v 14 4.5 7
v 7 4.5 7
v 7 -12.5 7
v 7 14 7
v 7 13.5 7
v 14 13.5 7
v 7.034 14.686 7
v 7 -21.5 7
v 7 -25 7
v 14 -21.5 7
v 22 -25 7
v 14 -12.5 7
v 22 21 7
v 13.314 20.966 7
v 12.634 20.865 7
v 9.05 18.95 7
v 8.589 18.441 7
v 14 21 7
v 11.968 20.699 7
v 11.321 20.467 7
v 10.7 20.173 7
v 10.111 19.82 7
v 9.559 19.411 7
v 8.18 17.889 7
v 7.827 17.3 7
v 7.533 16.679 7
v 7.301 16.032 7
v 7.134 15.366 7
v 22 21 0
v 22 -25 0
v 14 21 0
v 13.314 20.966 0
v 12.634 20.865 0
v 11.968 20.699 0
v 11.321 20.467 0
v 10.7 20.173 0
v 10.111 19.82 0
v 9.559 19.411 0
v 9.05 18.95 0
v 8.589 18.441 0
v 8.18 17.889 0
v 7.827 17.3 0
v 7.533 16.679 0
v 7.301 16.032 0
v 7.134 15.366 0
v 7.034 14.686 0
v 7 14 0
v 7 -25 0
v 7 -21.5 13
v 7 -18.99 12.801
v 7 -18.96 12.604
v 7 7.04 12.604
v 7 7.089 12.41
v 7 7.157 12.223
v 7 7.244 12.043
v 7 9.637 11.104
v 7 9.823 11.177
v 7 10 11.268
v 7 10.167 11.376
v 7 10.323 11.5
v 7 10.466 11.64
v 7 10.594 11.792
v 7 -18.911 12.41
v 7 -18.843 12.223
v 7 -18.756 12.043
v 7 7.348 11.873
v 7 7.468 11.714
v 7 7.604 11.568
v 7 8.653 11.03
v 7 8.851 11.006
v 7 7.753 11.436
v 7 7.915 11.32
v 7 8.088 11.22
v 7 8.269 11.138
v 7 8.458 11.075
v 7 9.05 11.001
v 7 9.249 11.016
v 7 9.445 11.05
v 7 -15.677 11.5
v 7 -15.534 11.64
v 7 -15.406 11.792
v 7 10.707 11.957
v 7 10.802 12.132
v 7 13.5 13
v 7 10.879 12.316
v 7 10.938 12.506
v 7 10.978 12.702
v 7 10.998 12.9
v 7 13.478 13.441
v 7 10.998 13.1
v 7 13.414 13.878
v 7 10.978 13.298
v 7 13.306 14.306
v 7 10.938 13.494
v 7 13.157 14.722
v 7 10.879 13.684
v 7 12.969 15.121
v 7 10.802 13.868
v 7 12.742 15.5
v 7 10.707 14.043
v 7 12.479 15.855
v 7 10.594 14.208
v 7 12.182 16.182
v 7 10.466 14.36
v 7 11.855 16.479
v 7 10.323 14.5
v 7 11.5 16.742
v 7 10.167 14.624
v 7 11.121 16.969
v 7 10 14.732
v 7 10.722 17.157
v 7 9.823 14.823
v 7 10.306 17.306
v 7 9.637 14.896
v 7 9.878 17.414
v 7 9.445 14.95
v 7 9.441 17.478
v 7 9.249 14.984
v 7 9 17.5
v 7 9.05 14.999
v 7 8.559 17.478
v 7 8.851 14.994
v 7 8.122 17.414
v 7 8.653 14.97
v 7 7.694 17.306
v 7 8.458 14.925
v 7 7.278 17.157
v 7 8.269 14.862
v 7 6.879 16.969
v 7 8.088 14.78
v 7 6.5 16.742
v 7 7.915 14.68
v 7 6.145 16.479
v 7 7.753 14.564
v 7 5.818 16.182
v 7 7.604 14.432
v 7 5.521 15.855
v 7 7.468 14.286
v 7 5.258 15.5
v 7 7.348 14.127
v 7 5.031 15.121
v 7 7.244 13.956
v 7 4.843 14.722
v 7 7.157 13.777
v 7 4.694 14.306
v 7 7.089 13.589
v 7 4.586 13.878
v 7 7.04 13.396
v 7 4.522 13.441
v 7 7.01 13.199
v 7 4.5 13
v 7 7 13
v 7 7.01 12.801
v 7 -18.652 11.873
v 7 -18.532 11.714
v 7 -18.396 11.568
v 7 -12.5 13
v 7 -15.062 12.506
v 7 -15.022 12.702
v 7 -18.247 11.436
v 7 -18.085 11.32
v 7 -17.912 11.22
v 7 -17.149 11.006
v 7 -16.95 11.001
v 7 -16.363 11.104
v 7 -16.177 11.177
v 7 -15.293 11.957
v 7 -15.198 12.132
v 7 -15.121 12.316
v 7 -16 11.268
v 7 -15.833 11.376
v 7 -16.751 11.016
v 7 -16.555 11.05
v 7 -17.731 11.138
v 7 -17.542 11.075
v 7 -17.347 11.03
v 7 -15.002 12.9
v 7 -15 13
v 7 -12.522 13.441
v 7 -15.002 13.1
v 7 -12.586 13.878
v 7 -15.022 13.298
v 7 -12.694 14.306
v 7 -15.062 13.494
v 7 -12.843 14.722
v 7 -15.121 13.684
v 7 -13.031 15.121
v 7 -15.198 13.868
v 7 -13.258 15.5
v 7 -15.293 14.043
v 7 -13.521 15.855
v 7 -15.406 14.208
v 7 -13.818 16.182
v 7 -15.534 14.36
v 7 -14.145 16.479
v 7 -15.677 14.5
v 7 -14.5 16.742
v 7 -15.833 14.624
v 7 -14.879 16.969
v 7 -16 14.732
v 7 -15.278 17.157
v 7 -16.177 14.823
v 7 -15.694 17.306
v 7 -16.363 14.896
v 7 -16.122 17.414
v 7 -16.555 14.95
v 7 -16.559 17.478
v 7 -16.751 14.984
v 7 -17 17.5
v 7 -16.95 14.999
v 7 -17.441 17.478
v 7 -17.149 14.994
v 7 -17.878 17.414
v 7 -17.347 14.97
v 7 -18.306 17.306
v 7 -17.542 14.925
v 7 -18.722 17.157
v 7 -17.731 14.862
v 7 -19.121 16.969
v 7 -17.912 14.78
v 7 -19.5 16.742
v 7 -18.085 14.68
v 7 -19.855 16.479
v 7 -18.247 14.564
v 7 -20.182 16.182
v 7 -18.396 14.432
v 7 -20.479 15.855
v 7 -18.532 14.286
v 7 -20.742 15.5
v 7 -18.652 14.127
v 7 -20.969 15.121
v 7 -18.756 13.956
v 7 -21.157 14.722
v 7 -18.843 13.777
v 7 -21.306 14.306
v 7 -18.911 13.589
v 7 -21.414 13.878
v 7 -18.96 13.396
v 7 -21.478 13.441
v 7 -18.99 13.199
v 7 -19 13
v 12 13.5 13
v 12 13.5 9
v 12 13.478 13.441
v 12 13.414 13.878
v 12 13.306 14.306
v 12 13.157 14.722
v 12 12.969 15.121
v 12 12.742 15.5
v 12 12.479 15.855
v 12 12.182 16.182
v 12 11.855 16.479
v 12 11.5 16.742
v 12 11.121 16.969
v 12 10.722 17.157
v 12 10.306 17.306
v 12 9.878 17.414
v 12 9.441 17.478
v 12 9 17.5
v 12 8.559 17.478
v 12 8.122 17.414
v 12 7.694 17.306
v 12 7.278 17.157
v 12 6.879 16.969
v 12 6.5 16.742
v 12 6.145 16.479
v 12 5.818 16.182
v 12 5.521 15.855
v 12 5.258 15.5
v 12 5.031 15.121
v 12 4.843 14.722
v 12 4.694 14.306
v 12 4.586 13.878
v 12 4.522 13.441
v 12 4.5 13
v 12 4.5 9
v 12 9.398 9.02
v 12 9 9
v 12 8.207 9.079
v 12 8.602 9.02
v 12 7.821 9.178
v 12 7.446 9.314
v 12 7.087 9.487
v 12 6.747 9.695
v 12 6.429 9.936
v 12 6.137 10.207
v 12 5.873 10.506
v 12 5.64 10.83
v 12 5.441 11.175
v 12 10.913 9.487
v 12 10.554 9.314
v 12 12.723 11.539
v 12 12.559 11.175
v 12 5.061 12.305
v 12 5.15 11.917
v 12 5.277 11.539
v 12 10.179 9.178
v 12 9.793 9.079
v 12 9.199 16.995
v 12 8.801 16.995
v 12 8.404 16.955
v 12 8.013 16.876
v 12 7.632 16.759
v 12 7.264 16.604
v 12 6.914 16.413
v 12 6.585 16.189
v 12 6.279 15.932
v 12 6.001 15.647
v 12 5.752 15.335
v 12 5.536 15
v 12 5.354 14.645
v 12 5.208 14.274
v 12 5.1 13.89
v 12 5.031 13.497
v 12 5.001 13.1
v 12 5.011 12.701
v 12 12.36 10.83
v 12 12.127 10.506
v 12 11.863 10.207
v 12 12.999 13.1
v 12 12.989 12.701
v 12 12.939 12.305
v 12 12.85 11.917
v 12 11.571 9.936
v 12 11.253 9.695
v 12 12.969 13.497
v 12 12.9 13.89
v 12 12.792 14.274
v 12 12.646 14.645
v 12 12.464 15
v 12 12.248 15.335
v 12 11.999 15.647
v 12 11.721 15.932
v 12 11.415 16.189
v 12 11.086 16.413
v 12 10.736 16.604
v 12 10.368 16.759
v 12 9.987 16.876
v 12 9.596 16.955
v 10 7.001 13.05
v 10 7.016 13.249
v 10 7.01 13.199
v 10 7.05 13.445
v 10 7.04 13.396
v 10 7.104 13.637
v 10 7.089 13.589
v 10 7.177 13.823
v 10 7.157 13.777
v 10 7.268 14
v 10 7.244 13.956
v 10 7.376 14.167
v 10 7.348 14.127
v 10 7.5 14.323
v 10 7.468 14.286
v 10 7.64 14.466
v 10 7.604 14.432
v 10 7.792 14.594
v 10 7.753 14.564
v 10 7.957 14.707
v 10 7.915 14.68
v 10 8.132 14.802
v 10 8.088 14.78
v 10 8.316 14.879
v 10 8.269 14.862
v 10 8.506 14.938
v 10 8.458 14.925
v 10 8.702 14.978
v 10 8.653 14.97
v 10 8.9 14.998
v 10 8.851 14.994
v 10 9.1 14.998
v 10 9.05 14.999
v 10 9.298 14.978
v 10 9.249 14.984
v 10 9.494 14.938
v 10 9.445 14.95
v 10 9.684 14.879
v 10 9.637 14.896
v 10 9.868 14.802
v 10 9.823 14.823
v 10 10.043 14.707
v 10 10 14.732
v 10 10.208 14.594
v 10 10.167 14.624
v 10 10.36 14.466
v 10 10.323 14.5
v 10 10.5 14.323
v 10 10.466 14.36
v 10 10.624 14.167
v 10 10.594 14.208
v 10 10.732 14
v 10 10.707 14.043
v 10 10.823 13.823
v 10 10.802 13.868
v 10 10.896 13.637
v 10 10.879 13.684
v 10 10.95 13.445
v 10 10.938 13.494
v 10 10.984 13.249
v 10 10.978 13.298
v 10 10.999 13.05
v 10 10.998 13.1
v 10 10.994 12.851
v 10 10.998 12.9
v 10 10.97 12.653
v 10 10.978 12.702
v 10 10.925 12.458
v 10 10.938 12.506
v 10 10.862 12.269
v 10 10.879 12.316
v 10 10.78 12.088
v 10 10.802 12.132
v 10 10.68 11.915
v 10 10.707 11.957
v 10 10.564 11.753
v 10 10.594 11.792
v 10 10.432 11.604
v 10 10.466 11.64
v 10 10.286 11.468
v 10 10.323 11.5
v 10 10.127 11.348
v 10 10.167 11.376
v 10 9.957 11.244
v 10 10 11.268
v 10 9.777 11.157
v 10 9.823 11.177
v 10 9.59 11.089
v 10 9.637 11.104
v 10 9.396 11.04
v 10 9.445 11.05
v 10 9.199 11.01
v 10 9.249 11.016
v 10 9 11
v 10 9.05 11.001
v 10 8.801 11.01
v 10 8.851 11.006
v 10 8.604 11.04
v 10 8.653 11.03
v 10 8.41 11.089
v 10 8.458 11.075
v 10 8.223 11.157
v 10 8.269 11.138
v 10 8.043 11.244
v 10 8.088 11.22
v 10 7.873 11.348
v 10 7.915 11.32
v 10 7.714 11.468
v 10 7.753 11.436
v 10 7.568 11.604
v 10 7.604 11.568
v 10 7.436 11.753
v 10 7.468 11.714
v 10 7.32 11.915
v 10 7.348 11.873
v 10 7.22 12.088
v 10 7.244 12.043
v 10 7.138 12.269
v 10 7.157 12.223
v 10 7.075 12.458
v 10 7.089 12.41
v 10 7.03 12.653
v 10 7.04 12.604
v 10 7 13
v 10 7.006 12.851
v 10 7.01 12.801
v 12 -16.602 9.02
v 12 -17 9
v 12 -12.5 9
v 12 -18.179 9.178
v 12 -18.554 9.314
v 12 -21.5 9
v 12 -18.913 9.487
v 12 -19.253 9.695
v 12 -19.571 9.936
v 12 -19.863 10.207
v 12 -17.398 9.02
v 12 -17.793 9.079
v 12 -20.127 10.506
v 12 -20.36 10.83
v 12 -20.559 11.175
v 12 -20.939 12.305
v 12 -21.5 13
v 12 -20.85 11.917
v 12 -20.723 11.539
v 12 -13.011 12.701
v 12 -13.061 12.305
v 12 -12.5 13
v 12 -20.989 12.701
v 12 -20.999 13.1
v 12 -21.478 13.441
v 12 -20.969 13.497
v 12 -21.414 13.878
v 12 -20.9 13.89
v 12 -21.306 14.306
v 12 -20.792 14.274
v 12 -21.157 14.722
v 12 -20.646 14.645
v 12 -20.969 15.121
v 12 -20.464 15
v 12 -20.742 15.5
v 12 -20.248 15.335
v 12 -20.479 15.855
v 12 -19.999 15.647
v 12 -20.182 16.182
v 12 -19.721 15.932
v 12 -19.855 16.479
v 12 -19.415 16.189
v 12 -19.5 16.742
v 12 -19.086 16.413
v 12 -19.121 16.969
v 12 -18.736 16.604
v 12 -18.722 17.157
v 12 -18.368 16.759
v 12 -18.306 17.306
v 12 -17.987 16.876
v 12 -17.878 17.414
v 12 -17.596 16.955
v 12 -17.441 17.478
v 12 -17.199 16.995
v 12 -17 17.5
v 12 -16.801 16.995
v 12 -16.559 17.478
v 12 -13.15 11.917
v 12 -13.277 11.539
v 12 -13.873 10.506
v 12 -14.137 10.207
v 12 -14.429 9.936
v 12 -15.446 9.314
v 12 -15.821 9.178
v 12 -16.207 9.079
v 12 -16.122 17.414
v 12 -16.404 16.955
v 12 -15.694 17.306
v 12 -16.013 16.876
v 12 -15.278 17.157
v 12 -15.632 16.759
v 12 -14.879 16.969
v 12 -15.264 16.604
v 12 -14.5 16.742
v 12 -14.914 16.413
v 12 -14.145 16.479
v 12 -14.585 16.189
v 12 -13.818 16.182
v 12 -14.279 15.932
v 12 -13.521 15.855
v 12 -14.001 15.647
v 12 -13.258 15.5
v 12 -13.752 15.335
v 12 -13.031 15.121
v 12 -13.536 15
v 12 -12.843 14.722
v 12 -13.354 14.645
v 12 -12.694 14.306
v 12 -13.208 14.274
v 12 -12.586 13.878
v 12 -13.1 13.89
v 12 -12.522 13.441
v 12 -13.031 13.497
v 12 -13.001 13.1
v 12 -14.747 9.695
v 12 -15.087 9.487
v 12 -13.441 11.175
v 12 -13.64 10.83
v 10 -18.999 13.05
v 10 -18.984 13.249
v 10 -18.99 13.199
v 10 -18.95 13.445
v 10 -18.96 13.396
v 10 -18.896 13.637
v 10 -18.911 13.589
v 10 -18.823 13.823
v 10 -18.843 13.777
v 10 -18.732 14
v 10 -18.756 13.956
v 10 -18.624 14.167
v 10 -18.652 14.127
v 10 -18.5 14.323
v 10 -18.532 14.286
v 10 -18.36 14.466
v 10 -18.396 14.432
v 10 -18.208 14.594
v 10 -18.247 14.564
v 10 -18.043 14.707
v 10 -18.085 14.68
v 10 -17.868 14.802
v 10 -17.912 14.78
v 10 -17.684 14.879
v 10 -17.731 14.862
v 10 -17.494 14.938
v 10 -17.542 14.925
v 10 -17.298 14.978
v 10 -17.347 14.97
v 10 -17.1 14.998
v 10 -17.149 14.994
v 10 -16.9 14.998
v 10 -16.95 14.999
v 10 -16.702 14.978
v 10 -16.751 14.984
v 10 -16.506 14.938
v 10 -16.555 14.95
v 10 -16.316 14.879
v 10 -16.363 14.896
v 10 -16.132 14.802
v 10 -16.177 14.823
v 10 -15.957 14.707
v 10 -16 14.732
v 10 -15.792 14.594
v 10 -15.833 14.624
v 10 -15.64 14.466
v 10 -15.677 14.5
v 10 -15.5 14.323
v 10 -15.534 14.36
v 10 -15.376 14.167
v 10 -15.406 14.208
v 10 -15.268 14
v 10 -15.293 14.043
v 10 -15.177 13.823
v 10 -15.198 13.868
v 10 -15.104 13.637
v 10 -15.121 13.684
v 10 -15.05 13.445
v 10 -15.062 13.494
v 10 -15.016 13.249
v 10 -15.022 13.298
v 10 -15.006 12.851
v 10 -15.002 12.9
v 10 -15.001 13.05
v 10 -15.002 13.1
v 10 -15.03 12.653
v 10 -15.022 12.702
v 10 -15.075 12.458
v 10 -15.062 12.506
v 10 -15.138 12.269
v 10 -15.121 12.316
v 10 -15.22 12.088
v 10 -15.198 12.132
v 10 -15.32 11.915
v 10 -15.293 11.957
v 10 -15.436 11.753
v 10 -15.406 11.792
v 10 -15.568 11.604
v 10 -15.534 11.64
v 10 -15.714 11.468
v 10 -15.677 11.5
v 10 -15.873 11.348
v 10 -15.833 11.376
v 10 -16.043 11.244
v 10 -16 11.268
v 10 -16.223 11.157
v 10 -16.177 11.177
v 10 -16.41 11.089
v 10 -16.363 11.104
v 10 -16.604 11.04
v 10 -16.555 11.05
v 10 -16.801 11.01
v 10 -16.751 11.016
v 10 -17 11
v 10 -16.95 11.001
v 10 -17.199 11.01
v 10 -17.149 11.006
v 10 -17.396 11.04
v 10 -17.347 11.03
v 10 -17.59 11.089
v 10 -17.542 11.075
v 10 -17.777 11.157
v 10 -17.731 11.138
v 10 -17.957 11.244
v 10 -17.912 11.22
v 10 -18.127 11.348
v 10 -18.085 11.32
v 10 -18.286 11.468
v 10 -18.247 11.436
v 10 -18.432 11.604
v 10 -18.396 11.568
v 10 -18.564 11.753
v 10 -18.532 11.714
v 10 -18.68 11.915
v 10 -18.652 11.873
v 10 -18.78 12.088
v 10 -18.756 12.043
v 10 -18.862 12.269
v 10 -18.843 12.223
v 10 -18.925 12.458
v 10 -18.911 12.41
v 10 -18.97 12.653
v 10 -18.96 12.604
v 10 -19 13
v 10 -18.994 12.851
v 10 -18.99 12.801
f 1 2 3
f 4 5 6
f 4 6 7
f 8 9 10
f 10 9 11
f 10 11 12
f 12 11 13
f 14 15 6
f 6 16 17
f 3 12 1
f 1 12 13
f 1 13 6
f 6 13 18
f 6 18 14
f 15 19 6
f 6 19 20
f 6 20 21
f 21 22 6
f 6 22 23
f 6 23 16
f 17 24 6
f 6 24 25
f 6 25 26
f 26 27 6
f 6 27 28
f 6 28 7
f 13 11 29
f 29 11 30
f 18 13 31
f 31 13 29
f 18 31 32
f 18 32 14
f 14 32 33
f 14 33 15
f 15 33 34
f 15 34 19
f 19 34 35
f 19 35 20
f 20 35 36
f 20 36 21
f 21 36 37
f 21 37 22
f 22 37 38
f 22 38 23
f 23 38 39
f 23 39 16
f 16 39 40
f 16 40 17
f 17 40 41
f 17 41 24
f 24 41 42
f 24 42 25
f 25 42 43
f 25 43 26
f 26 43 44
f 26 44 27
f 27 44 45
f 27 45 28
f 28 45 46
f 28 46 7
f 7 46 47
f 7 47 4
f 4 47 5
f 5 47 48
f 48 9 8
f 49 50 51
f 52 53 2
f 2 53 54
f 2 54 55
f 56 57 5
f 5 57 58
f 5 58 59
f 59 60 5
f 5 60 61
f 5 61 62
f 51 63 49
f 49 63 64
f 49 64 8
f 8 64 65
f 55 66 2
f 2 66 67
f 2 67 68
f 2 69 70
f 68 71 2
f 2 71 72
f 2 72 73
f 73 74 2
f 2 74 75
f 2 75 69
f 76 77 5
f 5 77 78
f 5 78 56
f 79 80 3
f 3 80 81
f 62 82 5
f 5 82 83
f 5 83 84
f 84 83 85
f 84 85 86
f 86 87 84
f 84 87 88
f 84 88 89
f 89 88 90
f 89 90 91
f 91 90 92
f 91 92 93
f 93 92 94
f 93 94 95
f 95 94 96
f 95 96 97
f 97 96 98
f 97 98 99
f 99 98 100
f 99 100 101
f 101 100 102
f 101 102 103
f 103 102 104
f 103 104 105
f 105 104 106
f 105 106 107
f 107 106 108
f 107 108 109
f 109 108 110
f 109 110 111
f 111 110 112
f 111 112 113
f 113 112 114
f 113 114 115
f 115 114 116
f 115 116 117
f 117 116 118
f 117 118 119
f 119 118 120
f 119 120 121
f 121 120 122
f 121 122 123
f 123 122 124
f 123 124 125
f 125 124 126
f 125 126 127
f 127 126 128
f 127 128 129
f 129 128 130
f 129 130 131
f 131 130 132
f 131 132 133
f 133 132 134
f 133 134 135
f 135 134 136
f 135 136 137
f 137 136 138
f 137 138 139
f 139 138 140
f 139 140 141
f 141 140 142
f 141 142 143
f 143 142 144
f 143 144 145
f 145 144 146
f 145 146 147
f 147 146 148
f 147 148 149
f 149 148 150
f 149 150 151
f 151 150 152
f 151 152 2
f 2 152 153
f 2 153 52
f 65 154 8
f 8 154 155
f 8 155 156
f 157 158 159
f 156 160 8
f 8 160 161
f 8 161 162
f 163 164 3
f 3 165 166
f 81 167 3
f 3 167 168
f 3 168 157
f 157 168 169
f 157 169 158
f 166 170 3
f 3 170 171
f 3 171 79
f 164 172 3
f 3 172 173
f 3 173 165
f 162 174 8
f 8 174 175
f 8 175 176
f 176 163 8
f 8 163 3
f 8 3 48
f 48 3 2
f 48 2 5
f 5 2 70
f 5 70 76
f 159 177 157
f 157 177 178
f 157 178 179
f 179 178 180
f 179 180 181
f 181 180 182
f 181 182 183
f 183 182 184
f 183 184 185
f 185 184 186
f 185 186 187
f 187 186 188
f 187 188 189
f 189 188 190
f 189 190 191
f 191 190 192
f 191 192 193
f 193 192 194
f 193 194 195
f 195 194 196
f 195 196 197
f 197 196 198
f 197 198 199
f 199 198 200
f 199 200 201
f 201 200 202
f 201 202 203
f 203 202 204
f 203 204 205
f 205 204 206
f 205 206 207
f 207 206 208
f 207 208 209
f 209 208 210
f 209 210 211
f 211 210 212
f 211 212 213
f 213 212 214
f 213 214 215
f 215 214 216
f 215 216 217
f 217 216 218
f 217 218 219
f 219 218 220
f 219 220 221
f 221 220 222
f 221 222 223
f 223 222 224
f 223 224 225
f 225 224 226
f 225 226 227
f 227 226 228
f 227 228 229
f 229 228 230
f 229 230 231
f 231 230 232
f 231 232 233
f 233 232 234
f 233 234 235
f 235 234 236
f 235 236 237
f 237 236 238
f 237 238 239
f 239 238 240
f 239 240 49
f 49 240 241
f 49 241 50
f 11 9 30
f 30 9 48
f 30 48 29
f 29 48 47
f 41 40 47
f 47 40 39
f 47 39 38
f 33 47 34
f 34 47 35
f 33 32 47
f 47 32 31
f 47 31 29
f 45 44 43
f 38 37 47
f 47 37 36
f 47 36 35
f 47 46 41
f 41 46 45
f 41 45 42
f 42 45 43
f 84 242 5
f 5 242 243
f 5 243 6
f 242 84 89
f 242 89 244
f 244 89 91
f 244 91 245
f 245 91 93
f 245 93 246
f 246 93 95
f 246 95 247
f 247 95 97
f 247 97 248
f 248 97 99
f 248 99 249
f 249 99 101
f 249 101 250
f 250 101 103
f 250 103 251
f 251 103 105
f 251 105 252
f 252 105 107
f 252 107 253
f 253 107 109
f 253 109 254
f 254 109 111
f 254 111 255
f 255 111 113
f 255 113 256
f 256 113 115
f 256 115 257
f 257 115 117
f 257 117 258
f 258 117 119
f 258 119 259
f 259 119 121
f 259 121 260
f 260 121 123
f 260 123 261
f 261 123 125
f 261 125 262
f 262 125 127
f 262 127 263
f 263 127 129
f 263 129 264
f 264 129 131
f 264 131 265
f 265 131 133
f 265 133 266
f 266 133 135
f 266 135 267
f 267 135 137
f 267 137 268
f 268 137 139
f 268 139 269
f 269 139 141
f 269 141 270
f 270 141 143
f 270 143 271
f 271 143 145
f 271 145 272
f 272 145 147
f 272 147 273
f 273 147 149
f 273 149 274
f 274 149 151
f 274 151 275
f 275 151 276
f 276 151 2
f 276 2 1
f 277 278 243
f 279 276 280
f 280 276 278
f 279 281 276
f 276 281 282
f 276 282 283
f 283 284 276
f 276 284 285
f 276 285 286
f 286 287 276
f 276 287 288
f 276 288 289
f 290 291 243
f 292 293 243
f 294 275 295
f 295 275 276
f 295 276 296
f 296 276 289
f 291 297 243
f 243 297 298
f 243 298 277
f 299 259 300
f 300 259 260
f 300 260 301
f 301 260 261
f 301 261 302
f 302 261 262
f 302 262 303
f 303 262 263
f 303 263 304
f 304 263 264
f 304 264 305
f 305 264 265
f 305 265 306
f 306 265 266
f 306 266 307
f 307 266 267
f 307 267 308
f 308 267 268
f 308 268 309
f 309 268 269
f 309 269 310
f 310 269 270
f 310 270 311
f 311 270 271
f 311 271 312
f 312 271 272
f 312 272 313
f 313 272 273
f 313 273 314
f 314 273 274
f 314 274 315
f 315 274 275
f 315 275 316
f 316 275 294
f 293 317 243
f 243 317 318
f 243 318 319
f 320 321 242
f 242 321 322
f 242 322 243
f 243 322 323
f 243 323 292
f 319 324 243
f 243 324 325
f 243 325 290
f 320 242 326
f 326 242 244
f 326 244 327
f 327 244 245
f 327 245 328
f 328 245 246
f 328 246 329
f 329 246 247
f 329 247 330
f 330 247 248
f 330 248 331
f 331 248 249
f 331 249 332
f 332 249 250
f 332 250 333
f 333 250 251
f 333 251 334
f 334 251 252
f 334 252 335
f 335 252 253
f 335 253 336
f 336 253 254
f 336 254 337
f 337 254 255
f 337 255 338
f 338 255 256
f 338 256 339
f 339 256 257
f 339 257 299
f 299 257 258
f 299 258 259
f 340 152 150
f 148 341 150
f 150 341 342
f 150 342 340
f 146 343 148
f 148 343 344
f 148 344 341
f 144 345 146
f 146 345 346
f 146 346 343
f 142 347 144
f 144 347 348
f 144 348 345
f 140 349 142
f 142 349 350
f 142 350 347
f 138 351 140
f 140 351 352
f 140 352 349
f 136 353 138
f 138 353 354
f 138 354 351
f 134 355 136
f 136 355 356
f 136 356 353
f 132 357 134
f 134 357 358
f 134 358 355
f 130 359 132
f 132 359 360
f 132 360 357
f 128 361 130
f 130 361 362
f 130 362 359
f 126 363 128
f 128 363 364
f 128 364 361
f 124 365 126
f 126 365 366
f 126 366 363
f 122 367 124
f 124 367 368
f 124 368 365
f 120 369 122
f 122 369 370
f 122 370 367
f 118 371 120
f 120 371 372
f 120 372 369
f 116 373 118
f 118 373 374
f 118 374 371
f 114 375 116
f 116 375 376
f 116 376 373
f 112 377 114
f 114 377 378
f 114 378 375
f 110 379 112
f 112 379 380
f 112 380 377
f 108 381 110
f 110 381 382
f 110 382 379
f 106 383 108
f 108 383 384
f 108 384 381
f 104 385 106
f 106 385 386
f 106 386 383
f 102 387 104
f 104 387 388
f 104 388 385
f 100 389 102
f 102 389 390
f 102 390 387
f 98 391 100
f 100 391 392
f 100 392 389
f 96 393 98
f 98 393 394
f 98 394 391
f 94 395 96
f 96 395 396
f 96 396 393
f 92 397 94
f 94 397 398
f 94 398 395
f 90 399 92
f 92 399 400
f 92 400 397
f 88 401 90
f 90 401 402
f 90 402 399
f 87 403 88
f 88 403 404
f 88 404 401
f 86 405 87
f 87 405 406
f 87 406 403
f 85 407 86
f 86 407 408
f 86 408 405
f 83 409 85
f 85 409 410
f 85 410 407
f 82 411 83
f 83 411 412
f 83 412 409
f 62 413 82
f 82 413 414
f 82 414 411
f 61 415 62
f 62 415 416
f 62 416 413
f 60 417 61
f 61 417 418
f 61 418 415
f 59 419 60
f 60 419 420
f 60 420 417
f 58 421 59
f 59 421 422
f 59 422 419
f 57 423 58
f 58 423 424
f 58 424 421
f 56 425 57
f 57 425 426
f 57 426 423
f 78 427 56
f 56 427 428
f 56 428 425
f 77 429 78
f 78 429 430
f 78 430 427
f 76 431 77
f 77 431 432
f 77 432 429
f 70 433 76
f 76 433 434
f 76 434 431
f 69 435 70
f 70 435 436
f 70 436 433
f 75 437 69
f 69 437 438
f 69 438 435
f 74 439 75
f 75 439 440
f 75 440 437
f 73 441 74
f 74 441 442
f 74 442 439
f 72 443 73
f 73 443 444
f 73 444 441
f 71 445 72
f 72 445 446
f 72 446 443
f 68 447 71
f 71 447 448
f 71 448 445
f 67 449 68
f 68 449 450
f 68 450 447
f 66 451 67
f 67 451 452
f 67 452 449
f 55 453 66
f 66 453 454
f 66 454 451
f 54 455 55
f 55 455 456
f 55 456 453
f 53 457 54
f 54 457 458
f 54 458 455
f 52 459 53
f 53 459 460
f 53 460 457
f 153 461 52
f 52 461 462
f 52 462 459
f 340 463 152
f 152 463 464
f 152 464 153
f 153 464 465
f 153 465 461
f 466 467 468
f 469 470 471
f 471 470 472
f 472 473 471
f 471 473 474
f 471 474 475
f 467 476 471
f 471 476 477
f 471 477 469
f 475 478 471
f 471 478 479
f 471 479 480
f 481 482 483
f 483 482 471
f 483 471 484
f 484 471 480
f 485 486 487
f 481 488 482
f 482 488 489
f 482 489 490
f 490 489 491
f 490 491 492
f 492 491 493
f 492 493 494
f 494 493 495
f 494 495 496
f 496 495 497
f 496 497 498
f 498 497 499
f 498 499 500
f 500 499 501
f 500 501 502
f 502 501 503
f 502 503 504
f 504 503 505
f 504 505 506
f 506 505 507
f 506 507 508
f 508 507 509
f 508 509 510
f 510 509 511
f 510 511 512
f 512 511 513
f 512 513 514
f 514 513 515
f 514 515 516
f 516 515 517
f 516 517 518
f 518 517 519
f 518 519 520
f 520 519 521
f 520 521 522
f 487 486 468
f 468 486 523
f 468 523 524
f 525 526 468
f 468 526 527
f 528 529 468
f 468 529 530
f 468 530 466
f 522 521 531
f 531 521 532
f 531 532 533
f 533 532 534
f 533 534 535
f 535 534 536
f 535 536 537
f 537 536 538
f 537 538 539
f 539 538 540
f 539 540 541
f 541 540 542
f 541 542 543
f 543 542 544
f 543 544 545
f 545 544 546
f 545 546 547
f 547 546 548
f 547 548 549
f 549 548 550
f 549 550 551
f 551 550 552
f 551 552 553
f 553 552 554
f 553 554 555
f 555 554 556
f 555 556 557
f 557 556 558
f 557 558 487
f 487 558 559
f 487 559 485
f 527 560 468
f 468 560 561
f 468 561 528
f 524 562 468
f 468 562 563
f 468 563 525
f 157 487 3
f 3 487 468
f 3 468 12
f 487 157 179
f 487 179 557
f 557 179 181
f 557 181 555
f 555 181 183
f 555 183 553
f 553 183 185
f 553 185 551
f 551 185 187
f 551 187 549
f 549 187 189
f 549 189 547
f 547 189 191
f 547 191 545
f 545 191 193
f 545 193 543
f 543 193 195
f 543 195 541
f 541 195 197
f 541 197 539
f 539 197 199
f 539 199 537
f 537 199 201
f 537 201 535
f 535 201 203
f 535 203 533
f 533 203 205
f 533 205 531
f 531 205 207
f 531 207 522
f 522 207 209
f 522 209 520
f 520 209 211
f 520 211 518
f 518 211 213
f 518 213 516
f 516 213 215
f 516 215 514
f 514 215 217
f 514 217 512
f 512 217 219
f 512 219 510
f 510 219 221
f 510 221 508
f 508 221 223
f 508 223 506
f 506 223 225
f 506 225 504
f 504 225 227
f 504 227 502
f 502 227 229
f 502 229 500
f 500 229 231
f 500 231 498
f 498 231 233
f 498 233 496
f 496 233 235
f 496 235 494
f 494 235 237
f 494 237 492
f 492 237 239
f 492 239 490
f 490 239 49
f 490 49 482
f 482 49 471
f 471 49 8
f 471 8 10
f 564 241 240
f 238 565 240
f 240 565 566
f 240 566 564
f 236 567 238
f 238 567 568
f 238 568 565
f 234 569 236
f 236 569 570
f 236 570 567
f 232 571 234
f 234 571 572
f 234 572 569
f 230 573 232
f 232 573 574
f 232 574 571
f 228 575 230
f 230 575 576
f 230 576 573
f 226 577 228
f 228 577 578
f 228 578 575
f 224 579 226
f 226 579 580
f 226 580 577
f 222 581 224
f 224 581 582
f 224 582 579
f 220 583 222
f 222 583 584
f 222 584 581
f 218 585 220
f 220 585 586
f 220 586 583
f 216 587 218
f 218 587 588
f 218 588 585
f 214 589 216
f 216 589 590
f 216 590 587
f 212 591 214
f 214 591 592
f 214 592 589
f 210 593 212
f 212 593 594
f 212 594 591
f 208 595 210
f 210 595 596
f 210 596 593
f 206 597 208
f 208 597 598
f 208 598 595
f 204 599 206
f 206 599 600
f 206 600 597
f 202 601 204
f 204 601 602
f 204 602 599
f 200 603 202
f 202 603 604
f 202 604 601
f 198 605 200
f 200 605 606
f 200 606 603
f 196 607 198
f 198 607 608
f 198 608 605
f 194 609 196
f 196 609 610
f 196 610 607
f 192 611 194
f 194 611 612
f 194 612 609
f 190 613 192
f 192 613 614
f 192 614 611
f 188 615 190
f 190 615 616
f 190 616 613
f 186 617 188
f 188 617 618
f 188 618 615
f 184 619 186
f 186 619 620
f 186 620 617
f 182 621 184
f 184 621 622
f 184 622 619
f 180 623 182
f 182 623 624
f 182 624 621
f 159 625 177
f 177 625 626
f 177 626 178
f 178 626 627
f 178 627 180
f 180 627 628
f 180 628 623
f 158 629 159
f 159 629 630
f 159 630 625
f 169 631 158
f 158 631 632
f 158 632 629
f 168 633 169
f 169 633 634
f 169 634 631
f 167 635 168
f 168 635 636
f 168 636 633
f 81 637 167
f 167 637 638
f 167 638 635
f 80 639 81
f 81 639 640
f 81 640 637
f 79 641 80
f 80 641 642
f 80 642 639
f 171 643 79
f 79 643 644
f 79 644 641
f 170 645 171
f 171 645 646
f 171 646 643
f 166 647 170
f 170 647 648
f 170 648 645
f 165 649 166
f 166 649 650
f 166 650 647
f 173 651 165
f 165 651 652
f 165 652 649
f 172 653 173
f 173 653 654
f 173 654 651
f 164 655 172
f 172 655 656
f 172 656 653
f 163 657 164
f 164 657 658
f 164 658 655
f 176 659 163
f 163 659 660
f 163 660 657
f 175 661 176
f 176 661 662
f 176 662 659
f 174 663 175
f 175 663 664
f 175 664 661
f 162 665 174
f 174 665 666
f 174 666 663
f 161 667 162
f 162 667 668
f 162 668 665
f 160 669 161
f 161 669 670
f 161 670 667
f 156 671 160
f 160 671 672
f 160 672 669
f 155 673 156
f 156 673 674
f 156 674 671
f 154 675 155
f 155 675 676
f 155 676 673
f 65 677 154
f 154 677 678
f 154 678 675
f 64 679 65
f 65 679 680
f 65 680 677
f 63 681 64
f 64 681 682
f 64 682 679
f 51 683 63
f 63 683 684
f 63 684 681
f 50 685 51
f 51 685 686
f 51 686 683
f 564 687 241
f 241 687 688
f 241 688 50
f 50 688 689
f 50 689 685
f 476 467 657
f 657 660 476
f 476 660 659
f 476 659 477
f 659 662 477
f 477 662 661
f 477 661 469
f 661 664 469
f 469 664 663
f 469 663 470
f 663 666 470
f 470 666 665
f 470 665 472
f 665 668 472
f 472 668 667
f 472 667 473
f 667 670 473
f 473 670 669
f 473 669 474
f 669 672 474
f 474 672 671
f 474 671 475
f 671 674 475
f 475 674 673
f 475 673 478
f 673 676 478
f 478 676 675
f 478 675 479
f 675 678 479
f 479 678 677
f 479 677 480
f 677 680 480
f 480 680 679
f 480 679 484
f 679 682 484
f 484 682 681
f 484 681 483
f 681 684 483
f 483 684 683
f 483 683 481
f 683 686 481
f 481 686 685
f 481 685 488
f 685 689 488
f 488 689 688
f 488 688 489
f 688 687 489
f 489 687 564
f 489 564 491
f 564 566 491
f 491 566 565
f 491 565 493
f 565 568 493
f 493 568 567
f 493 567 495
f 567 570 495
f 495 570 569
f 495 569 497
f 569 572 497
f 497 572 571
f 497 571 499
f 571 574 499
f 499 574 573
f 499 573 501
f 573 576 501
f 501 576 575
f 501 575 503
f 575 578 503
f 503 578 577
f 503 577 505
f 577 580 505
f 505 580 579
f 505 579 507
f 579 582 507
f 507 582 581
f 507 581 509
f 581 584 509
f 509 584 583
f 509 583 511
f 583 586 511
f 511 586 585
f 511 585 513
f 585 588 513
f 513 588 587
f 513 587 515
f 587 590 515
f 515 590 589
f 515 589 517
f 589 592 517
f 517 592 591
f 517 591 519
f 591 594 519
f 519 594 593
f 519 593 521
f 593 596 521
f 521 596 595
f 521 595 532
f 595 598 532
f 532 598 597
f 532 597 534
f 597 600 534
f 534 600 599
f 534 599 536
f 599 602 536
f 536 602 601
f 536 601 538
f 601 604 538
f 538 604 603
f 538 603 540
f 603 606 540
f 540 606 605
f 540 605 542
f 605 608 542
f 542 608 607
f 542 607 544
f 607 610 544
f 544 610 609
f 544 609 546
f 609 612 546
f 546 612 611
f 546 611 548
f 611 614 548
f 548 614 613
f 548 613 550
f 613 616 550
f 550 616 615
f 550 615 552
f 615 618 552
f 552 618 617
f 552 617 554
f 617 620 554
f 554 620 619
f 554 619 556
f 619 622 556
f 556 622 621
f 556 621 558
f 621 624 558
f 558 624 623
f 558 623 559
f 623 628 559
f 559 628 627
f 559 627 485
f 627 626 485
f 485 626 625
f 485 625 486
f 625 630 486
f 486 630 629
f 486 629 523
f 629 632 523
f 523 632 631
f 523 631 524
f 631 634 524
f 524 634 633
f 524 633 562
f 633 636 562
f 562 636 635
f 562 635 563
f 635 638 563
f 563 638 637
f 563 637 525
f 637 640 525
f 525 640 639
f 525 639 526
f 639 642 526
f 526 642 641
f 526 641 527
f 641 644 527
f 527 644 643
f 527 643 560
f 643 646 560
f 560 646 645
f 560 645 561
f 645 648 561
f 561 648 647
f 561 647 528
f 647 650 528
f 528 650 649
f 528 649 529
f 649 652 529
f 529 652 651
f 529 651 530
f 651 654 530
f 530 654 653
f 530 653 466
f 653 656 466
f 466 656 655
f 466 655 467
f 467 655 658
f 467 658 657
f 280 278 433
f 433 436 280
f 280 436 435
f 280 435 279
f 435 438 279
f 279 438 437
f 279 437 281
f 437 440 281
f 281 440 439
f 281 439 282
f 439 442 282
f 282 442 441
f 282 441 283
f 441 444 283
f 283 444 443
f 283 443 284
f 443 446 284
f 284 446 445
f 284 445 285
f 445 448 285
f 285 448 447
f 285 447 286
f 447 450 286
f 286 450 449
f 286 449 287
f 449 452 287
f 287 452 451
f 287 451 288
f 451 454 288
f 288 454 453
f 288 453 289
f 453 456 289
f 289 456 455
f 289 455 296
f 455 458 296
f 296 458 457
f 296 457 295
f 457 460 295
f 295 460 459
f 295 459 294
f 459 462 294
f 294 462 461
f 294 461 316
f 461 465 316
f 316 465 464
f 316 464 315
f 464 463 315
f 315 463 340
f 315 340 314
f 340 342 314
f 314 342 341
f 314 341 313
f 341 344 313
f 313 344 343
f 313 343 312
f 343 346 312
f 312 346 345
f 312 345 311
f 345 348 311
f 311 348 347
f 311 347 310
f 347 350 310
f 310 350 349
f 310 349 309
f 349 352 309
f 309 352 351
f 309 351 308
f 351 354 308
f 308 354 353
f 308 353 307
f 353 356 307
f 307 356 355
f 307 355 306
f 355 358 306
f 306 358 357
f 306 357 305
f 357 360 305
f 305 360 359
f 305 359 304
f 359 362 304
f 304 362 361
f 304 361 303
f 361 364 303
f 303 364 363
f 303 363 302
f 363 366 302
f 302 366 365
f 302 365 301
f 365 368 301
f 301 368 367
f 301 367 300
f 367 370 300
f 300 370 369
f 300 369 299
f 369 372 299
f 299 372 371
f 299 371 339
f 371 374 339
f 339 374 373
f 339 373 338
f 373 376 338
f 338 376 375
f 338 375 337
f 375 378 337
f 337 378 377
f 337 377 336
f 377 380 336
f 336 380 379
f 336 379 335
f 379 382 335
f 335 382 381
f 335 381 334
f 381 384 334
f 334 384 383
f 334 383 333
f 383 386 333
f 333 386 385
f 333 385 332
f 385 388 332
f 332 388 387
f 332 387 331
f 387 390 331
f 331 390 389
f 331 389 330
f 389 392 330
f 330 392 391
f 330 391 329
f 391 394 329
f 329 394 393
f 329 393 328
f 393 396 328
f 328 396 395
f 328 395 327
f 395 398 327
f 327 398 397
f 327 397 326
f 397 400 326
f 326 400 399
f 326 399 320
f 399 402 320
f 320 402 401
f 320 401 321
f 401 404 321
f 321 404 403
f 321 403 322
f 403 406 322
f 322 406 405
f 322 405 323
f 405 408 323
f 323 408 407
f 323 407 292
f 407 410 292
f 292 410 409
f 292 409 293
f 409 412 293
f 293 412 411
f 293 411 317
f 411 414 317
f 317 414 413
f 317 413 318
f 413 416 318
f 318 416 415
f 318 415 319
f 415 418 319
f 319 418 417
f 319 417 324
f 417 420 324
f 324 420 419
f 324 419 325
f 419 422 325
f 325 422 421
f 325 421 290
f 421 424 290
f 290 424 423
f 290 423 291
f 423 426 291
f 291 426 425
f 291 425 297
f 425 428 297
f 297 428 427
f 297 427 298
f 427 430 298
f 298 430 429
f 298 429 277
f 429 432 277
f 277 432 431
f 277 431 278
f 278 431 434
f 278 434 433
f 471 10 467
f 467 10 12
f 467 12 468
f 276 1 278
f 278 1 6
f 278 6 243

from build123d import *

# Parameters (mm, degrees)
BOSS_EXTRUDE1_DEPTH = 7
SKETCH2_R           = 2
BOSS_EXTRUDE2_DEPTH = 5
CHAMFER1_SIZE       = 2
CHAMFER2_SIZE       = 2


with BuildPart() as part:
    # Sketch1 → Boss-Extrude1 (new body)
    with BuildSketch(Plane.XY):
        with BuildLine():
            Line((22, 21), (14, 21))
            ThreePointArc((14, 21), (9.050252532, 18.949747468), (7, 14))
            Line((7, 14), (7, -25))
            Line((7, -25), (22, -25))
            Line((22, -25), (22, 21))
        make_face()
    extrude(amount=BOSS_EXTRUDE1_DEPTH)

    # Sketch2 → Boss-Extrude2 (add)
    with BuildSketch(Plane.ZY.offset(-7)):
        with BuildLine():
            Line((7, 13.5), (13, 13.5))
            ThreePointArc((13, 13.5), (17.5, 9), (13, 4.5))
            Line((13, 4.5), (7, 4.5))
            Line((7, 4.5), (7, 13.5))
        make_face()
        with Locations(Location((13, 9, 0), (0, 0, 270))):
            Circle(SKETCH2_R, mode=Mode.SUBTRACT)
    boss_extrude2 = extrude(amount=-BOSS_EXTRUDE2_DEPTH)

    # Mirror1: Boss-Extrude2 across plane
    add(boss_extrude2.mirror(Plane.ZX.offset(-4)))

    # Chamfer1
    chamfer1_edges = [part.edges().sort_by_distance(p)[0] for p in [
        (12, 11, 13),
        (12, -19, 13),
    ]]
    chamfer(chamfer1_edges, length=CHAMFER1_SIZE)

    # Chamfer2
    chamfer2_edges = [part.edges().sort_by_distance(p)[0] for p in [
        (12, 9, 7),
        (12, -17, 7),
    ]]
    chamfer(chamfer2_edges, length=CHAMFER2_SIZE - 0.0001)  # a hair under: the kernel refuses the full size


solid = part.part
